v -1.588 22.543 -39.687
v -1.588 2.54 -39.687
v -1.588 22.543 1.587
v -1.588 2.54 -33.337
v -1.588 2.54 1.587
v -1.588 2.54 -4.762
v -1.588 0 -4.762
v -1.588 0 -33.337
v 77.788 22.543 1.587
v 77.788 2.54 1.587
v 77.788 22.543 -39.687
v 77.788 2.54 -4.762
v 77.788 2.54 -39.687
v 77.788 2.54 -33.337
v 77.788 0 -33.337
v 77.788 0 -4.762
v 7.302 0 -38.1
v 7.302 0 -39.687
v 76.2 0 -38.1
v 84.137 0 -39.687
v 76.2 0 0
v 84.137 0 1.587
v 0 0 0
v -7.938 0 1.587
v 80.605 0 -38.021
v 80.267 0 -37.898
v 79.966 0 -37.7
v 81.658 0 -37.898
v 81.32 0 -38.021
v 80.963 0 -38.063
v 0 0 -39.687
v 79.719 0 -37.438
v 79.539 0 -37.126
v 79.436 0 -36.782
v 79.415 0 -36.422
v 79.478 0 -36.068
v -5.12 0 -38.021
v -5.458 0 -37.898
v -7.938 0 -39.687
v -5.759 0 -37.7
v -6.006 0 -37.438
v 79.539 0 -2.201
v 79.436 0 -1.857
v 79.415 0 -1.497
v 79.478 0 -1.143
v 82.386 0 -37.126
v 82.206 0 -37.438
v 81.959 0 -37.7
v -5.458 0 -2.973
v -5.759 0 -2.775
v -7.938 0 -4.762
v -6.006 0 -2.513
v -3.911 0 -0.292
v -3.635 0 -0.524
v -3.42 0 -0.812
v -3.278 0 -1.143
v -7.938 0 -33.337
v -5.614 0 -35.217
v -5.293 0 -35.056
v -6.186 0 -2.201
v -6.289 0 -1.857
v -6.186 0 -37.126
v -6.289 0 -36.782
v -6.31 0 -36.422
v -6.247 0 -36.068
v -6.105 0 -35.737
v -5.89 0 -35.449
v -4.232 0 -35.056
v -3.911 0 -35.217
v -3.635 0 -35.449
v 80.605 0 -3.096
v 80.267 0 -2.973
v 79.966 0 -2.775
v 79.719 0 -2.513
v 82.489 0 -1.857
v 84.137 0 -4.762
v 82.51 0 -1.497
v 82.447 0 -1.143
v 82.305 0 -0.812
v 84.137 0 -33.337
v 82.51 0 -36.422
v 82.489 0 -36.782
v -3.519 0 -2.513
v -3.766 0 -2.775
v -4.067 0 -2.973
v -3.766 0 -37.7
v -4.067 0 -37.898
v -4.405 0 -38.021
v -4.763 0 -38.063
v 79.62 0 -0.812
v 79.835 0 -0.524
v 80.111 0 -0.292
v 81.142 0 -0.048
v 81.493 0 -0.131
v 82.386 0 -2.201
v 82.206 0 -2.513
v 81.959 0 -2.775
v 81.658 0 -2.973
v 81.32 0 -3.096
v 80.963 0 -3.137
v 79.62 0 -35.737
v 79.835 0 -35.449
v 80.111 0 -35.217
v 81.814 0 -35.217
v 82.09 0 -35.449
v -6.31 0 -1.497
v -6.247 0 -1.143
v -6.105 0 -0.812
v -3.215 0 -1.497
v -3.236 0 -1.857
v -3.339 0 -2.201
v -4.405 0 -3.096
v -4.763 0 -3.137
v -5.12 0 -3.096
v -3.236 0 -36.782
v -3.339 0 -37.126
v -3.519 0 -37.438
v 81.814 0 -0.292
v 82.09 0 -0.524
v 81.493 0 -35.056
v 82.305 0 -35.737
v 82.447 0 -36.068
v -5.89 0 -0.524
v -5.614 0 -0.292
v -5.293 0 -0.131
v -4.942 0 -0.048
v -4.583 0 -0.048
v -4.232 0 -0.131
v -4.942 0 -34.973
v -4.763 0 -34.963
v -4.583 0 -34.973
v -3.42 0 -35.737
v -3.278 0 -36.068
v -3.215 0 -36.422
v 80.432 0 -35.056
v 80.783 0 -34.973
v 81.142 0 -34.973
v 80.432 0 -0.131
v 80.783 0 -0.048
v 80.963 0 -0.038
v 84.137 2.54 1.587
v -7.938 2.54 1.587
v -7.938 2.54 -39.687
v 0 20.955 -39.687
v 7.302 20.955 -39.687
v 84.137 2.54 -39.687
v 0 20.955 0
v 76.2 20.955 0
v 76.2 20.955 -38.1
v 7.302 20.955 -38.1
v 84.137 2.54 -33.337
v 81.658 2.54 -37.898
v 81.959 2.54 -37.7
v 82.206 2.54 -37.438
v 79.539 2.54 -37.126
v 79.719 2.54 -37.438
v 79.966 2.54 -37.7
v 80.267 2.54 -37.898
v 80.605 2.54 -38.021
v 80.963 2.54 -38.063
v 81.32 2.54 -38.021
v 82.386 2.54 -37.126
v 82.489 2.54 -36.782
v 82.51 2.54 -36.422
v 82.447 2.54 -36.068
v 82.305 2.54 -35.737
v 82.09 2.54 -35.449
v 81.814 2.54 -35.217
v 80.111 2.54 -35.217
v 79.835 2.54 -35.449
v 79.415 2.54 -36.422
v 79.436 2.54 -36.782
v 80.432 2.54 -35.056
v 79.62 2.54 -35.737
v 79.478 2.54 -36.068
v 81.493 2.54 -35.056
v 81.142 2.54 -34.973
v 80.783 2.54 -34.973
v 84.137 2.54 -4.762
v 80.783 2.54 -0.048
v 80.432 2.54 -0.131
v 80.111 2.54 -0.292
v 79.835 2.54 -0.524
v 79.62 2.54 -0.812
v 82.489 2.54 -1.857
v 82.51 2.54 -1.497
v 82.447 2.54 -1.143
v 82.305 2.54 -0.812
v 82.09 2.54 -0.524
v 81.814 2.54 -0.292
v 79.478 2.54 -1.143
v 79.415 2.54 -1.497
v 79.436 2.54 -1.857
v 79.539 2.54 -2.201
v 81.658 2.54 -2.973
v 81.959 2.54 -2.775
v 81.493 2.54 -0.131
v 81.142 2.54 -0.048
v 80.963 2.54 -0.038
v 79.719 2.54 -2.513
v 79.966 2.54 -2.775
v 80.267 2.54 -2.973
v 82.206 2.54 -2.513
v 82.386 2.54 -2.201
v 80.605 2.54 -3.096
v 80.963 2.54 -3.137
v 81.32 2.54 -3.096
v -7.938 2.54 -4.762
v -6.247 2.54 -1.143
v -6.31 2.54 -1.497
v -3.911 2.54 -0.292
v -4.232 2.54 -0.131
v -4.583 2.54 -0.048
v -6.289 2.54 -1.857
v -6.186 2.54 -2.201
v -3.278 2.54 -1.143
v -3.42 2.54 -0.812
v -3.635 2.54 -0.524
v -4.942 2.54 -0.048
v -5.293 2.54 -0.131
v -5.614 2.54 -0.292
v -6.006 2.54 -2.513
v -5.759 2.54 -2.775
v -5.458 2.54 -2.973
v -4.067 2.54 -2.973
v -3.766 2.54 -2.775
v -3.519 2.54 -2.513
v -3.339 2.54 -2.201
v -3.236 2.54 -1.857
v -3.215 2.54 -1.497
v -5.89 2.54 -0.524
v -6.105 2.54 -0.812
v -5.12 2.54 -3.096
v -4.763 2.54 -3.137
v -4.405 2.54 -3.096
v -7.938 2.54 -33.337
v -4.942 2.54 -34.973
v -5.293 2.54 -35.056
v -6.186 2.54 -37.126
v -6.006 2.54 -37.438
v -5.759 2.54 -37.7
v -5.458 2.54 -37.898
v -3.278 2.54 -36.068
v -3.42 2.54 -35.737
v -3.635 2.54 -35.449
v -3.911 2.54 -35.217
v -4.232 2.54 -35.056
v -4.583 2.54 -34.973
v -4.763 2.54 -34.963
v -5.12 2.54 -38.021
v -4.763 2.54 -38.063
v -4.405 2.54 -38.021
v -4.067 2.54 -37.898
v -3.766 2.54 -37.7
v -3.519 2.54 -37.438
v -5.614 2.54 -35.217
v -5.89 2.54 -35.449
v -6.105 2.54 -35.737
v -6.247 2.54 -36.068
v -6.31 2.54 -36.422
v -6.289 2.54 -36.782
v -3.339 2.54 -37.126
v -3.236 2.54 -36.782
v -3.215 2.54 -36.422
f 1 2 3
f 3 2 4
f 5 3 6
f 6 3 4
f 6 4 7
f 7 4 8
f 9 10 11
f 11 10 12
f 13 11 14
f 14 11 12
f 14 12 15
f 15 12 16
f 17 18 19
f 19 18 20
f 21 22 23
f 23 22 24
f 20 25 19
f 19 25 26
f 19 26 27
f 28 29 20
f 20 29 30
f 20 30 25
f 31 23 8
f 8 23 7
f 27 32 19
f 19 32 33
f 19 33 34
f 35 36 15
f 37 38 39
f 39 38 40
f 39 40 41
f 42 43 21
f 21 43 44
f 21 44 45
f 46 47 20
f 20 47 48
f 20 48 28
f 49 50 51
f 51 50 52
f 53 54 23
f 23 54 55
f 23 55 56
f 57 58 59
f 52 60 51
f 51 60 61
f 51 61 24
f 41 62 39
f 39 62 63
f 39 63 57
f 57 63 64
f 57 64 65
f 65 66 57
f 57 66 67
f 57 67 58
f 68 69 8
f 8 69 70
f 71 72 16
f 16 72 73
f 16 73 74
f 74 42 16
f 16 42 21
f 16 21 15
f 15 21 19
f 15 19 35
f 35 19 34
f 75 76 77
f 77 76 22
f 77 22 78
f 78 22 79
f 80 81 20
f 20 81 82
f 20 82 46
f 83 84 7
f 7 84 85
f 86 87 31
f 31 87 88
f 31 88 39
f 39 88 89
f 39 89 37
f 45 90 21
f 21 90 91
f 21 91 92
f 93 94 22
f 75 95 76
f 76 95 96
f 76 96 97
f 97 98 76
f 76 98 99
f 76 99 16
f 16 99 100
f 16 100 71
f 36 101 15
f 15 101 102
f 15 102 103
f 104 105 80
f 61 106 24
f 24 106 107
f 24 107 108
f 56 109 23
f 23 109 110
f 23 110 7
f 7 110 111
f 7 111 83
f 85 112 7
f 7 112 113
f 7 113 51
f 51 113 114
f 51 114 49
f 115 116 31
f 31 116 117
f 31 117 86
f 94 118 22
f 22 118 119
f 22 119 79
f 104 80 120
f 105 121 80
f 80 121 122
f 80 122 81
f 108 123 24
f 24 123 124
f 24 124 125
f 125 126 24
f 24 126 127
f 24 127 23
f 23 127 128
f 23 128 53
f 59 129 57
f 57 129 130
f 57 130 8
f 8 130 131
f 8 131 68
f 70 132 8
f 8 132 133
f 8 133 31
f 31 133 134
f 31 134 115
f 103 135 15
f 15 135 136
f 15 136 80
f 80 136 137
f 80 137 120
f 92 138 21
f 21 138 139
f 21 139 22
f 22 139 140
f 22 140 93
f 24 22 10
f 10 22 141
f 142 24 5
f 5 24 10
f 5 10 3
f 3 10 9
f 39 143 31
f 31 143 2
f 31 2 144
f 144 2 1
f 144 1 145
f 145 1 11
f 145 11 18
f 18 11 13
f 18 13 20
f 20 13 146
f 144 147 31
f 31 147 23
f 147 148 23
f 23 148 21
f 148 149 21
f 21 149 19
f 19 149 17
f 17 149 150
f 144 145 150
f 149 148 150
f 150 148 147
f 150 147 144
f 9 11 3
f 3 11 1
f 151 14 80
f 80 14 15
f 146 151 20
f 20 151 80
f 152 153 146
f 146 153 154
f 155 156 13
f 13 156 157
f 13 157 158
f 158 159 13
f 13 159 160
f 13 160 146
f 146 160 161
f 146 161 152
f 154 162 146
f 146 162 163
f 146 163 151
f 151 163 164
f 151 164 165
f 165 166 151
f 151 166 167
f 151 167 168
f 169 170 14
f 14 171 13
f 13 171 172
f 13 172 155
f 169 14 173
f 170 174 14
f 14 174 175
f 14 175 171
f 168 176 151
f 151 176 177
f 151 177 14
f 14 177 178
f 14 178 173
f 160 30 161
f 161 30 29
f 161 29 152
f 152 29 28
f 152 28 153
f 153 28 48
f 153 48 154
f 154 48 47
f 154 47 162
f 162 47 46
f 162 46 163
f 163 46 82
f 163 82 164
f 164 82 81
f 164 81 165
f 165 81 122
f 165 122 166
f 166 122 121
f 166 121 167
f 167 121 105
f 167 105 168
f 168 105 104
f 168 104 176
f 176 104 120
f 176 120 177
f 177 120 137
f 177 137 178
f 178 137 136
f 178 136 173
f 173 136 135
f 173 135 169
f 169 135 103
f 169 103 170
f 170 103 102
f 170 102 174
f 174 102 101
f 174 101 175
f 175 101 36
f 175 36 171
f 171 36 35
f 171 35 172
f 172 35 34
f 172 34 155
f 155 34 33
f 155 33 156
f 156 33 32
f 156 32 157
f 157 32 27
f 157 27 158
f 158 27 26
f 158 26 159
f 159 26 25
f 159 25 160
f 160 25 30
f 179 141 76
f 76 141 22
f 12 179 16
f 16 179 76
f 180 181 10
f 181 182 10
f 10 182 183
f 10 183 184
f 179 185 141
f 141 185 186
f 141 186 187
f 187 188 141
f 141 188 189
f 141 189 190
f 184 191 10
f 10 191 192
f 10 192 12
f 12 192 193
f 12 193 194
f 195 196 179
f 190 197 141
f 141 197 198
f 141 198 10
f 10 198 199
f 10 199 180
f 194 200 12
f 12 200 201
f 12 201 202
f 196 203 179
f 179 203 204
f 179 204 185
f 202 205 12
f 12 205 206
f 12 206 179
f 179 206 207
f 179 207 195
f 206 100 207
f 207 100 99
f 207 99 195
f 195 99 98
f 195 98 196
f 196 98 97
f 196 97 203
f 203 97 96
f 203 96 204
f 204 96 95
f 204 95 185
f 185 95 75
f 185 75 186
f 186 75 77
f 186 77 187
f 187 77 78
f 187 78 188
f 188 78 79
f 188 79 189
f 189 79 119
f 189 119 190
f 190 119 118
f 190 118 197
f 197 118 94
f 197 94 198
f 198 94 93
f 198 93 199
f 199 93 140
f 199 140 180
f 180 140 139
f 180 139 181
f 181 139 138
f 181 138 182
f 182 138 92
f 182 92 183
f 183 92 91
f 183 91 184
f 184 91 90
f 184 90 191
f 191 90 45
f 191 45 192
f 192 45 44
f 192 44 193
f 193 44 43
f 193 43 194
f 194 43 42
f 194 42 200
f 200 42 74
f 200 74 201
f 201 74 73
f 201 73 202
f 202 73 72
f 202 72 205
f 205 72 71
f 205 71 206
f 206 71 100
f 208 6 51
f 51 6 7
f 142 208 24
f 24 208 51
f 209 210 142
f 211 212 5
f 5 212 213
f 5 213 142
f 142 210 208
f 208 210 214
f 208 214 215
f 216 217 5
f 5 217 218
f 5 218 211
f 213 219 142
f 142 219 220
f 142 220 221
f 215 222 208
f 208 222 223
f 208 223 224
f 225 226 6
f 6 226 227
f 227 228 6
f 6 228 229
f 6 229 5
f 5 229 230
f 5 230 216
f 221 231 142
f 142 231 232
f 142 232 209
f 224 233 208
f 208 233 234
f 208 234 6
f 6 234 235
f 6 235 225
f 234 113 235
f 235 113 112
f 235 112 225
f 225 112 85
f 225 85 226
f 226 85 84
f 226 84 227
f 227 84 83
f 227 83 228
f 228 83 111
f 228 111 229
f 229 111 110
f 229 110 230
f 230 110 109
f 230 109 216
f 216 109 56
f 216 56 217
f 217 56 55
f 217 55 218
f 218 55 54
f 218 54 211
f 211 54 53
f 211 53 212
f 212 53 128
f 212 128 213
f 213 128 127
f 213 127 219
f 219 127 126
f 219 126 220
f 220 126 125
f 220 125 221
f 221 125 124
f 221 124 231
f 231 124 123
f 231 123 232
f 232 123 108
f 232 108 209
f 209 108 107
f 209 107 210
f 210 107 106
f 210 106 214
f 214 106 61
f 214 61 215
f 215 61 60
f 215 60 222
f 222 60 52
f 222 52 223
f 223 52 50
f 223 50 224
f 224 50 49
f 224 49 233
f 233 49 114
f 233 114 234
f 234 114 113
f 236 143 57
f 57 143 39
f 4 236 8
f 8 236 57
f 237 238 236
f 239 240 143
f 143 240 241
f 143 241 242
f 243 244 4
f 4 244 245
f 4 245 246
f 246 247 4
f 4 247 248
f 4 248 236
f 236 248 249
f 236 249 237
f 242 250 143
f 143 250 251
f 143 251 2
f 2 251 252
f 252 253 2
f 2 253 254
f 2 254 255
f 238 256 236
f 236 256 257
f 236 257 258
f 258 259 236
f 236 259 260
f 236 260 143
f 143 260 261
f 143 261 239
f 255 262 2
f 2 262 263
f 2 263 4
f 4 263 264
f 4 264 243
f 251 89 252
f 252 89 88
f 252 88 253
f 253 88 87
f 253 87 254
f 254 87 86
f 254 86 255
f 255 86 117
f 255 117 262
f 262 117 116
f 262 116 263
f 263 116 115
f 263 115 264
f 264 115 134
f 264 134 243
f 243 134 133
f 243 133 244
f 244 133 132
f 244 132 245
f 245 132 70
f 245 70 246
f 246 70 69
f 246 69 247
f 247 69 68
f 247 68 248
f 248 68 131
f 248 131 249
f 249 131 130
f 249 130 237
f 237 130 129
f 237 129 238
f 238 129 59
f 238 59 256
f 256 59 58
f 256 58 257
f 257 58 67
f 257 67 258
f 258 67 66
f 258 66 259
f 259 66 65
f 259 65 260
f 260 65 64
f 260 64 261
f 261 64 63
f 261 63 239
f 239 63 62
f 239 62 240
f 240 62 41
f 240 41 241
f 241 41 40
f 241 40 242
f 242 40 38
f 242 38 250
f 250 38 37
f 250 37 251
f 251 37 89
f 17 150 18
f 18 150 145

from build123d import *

# Parameters (mm, degrees)
SKETCH1_W           = 79.375
SKETCH1_H           = 41.275
SKETCH1_W_2         = 76.2
SKETCH1_H_2         = 38.1
BOSS_EXTRUDE1_DEPTH = 20.955
SKETCH2_W           = 79.375
SKETCH2_H           = 41.275
BOSS_EXTRUDE2_DEPTH = 1.5875
SKETCH3_W           = 6.35
SKETCH3_H           = 6.35
SKETCH3_R           = 1.55
BOSS_EXTRUDE3_DEPTH = 2.54
SKETCH4_W           = 8.89
SKETCH4_H           = 1.5875
CUT_EXTRUDE1_DEPTH  = 20.955
BOSS_EXTRUDE4_REACH = 97.72
SKETCH5_W           = 1.5875
SKETCH5_H           = 1.5875


with BuildPart() as part:
    # Sketch1 → Boss-Extrude1 (new body)
    with BuildSketch(Plane(origin=(0, 0, 0), x_dir=(1, 0, 0), z_dir=(0, 1, 0))):
        with Locations((38.1, 19.05)):
            Rectangle(SKETCH1_W, SKETCH1_H)
        with Locations((38.1, 19.05)):
            Rectangle(SKETCH1_W_2, SKETCH1_H_2, mode=Mode.SUBTRACT)
    extrude(amount=BOSS_EXTRUDE1_DEPTH)

    # Sketch2 → Boss-Extrude2 (add)
    with BuildSketch(Plane(origin=(0, 20.955, 0), x_dir=(1, 0, 0), z_dir=(0, 1, 0))):
        with Locations((38.1, 19.05)):
            Rectangle(SKETCH2_W, SKETCH2_H)
    extrude(amount=BOSS_EXTRUDE2_DEPTH)

    # Sketch3 → Boss-Extrude3 (add)
    # profile 1 of 4: a face of its own
    with BuildSketch(Plane.XZ):
        with Locations((80.9625, -36.5125)):
            Rectangle(SKETCH3_W, SKETCH3_H)
        with Locations(Location((80.9625, -36.5125, 0), (0, 0, 270))):
            Circle(SKETCH3_R, mode=Mode.SUBTRACT)
    # profile 2 of 4: a face of its own
    with BuildSketch(Plane.XZ):
        with Locations((80.9625, -1.5875)):
            Rectangle(SKETCH3_W, SKETCH3_H)
        with Locations(Location((80.9625, -1.5875, 0), (0, 0, 90))):
            Circle(SKETCH3_R, mode=Mode.SUBTRACT)
    # profile 3 of 4: a face of its own
    with BuildSketch(Plane.XZ):
        with Locations((-4.7625, -1.5875)):
            Rectangle(SKETCH3_W, SKETCH3_H)
        with Locations(Location((-4.7625, -1.5875, 0), (0, 0, 270))):
            Circle(SKETCH3_R, mode=Mode.SUBTRACT)
    # profile 4 of 4: a face of its own
    with BuildSketch(Plane.XZ):
        with Locations((-4.7625, -36.5125)):
            Rectangle(SKETCH3_W, SKETCH3_H)
        with Locations(Location((-4.7625, -36.5125, 0), (0, 0, 90))):
            Circle(SKETCH3_R, mode=Mode.SUBTRACT)
    extrude(amount=-BOSS_EXTRUDE3_DEPTH)

    # Sketch4 → Cut-Extrude1 (cut)
    with BuildSketch(Plane.XZ):
        with Locations((2.8575, -38.89375)):
            Rectangle(SKETCH4_W, SKETCH4_H)
    extrude(amount=-CUT_EXTRUDE1_DEPTH, mode=Mode.SUBTRACT)

    # Sketch5 → Boss-Extrude4 (add, up to next)
    with BuildSketch(Plane.XZ, mode=Mode.PRIVATE) as boss_extrude4_sk1:
        with Locations((-0.79375, -38.89375)):
            Rectangle(SKETCH5_W, SKETCH5_H)
    boss_extrude4_tool1 = extrude(boss_extrude4_sk1.sketch, amount=-BOSS_EXTRUDE4_REACH, mode=Mode.PRIVATE) - part.part
    add(boss_extrude4_tool1.solids().sort_by_distance((-0.79375, 0, -38.89375))[0])


solid = part.part
